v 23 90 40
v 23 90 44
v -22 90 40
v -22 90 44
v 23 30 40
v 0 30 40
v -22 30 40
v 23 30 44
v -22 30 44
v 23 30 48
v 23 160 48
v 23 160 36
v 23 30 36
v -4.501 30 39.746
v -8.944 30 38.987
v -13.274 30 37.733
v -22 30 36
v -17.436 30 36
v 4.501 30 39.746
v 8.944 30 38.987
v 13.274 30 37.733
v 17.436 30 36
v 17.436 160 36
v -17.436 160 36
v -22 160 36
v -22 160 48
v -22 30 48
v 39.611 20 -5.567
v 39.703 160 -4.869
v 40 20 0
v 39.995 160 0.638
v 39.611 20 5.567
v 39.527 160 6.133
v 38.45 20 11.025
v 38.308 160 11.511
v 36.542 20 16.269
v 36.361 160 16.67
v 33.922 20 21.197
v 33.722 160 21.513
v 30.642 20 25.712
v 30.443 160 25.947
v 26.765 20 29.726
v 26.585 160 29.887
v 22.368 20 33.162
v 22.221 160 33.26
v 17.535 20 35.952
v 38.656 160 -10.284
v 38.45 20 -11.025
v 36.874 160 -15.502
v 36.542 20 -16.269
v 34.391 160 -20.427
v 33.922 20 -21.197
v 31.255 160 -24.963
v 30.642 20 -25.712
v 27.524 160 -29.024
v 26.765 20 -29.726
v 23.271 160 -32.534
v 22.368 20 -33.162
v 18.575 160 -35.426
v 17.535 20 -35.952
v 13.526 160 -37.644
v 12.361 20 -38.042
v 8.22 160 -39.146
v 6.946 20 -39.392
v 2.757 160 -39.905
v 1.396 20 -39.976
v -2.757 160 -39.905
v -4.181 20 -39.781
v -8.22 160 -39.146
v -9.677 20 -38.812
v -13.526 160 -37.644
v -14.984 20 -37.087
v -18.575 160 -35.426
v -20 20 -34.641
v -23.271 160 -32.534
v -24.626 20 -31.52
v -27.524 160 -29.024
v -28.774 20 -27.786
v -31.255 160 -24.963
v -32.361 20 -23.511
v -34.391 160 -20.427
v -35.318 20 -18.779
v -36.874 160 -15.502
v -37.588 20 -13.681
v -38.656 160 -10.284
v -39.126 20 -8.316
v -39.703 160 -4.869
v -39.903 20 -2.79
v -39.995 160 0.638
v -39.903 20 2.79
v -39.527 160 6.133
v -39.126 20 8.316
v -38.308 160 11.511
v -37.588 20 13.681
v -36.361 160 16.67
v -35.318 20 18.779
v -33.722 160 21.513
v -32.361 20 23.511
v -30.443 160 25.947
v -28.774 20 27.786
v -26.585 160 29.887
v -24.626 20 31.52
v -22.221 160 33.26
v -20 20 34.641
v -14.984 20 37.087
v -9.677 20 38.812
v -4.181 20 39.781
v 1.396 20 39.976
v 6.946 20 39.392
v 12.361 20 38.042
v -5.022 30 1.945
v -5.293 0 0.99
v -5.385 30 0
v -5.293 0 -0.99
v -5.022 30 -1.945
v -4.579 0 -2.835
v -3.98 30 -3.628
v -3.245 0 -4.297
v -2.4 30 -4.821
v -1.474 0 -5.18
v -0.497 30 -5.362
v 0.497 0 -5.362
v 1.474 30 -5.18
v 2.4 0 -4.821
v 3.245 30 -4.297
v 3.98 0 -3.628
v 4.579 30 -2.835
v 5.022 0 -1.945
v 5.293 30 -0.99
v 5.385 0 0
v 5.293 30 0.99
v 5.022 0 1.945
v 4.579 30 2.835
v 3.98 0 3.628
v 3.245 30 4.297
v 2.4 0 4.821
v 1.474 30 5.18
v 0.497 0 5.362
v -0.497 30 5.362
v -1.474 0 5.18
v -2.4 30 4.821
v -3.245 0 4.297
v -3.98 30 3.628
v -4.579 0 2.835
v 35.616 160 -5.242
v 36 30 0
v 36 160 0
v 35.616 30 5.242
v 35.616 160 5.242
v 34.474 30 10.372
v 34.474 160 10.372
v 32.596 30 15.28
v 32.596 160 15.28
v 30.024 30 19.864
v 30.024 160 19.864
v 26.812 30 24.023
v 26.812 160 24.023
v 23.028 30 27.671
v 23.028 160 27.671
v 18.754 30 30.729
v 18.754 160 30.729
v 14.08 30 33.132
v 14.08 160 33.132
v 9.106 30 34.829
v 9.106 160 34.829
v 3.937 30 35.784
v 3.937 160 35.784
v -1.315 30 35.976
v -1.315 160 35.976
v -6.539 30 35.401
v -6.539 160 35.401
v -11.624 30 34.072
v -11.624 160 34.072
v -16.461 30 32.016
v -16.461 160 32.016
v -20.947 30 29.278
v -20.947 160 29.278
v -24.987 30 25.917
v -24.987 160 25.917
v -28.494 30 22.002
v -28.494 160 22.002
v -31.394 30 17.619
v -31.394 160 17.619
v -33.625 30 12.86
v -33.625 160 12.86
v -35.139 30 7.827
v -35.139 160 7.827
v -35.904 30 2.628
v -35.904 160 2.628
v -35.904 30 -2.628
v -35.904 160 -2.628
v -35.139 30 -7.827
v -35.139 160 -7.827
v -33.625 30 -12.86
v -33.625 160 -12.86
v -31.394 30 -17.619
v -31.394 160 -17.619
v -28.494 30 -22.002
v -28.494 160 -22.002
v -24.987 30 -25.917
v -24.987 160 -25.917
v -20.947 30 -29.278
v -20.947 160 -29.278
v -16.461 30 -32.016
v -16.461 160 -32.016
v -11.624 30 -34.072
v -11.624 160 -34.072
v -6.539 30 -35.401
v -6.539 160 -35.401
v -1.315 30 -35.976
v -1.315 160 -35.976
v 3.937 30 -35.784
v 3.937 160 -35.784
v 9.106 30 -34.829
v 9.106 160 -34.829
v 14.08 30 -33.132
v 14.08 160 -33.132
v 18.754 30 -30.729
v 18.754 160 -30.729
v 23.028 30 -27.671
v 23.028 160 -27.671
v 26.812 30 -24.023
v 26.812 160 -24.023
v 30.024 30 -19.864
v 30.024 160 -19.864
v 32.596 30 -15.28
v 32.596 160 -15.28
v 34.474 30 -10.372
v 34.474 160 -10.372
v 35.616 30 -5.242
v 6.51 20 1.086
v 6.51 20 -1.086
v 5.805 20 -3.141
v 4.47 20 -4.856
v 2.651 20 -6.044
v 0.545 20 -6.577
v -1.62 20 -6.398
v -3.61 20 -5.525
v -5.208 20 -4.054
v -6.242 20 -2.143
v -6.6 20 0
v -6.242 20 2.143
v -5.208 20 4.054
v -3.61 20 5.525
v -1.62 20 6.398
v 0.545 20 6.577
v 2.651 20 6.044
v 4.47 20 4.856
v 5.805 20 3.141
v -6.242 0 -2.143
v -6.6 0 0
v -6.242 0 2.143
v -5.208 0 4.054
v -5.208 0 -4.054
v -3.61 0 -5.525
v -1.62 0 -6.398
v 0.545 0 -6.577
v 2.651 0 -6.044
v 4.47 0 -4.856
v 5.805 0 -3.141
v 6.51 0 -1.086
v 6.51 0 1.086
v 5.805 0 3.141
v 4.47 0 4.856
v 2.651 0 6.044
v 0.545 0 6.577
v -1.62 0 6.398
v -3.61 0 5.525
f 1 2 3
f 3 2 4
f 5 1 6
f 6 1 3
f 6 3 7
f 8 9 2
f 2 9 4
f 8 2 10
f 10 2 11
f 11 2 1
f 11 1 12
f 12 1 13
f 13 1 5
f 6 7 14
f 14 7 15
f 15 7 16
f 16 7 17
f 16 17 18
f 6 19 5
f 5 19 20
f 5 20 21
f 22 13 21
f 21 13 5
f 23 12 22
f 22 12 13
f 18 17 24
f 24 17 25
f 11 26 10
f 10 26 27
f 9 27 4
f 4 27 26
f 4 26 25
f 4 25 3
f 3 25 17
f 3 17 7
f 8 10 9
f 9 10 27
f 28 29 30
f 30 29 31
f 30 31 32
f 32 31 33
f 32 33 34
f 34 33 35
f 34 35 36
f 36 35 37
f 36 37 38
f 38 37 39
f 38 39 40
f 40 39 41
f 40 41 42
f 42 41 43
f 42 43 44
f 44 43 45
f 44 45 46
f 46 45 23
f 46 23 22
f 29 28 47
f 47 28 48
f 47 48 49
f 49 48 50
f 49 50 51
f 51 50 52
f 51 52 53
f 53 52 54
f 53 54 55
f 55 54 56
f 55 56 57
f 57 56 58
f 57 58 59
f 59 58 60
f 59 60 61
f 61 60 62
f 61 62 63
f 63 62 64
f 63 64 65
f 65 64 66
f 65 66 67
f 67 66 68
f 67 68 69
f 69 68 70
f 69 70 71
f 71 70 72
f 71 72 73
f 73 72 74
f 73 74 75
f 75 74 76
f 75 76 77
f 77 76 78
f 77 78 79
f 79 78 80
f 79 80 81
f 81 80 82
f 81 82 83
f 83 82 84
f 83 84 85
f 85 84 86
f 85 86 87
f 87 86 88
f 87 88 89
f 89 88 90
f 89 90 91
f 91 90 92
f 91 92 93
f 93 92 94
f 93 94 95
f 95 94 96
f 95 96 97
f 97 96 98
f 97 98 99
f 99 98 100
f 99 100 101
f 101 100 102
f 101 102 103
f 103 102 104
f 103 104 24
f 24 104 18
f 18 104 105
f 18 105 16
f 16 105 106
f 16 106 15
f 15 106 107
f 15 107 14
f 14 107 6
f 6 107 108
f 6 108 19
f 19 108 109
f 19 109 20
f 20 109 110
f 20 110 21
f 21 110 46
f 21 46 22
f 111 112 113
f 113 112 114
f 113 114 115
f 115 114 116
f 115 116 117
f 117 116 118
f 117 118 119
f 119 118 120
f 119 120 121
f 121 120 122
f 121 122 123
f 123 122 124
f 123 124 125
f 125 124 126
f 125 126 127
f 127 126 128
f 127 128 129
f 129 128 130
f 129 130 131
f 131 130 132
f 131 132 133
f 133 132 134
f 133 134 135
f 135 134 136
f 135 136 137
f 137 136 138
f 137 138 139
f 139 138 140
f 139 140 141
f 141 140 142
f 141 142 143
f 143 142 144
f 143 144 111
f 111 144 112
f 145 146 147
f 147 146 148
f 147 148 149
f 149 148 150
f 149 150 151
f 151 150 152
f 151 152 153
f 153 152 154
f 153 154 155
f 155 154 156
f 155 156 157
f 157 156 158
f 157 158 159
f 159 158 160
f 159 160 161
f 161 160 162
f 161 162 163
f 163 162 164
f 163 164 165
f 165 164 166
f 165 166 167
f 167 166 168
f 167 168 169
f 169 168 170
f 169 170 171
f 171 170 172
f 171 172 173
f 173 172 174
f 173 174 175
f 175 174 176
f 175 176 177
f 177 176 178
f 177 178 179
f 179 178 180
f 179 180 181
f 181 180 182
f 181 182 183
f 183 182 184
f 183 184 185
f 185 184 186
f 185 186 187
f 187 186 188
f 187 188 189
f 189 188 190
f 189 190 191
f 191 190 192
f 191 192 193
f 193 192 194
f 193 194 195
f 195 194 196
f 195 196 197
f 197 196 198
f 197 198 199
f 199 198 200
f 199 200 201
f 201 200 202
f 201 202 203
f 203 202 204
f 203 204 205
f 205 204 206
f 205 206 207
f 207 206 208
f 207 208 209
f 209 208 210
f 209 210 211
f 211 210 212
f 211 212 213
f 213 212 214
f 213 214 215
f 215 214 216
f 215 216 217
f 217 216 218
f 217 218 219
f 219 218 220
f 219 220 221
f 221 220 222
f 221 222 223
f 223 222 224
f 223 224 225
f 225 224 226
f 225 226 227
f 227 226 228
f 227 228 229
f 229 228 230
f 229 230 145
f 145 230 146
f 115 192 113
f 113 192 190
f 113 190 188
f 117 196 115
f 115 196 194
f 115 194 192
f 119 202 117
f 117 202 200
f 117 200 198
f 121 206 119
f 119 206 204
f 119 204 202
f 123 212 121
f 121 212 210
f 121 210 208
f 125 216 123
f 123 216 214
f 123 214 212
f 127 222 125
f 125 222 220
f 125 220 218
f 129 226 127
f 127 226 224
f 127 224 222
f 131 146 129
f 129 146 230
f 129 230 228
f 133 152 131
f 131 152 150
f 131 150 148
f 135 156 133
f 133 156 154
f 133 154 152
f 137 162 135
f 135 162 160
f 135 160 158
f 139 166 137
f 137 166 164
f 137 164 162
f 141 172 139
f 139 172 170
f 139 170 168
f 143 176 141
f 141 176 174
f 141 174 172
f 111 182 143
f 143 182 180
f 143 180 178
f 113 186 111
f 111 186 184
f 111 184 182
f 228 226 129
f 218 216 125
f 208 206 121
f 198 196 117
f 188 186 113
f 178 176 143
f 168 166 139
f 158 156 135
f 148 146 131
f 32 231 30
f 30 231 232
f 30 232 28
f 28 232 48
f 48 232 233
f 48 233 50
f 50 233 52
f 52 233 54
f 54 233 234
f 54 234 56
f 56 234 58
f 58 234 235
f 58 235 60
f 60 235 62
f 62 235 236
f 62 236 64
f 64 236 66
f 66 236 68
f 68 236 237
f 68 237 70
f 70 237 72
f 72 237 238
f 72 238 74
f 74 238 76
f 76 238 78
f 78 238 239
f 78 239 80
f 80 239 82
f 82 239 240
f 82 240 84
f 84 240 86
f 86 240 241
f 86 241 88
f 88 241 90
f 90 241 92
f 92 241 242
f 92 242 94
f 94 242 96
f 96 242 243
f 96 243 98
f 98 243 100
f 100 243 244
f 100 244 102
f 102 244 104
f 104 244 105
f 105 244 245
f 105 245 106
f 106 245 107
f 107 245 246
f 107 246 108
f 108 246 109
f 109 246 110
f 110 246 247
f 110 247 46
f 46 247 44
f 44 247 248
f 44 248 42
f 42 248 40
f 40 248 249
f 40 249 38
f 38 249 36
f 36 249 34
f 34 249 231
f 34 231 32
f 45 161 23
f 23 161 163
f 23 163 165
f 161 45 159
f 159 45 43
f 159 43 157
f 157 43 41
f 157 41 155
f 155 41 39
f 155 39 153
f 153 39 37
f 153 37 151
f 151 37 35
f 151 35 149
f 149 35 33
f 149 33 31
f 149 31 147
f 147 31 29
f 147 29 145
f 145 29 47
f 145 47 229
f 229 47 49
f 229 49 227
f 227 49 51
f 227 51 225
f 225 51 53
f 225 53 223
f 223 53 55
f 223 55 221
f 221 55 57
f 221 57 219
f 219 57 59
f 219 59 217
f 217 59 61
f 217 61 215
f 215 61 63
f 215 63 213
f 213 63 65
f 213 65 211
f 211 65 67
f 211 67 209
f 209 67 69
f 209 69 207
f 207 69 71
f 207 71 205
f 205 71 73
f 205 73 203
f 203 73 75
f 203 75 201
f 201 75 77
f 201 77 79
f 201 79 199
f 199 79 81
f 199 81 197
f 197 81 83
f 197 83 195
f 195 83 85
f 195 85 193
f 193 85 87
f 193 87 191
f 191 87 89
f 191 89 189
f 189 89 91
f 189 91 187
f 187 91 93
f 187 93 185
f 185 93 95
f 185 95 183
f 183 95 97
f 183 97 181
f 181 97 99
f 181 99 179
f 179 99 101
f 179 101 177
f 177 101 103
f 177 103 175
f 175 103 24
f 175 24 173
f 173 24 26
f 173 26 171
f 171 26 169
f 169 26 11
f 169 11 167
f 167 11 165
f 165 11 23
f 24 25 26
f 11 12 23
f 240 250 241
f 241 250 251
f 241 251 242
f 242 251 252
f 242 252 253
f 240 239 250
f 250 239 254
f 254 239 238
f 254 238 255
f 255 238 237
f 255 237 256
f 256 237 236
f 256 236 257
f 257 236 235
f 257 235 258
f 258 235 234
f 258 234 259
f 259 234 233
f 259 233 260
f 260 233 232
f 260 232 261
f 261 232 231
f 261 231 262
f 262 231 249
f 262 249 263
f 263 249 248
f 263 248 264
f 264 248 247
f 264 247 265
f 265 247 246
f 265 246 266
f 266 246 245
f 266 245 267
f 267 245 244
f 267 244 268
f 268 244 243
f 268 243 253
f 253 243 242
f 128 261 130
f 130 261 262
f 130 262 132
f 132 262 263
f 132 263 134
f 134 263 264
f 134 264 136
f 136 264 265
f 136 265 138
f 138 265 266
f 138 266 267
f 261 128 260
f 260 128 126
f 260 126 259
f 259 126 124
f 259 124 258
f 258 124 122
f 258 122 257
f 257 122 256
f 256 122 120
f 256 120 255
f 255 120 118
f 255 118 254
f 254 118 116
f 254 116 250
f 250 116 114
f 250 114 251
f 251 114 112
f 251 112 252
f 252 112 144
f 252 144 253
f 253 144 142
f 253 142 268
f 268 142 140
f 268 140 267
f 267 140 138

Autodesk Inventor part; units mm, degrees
ref_plane "YZ Plane" through (0, 0, 0) normal (1, 0, 0) x (0, 1, 0)
ref_plane "XZ Plane" through (0, 0, 0) normal (0, 1, 0) x (-1, 0, 0)
ref_plane "XY Plane" through (0, 0, 0) normal (0, 0, 1) x (1, 0, 0)
sketch "Sketch1" plane through (0, 0, 0) normal (0, 1, 0) x (-1, 0, 0)
  circle A0 centre (0, 0) radius 6.6
  dimension "d0" = 13.2
extrude "Extrusion1" add sketch "Sketch1" along normal blind 20
sketch "Sketch3" plane through (0, 20, 0) normal (0, 1, 0) x (1, 0, 0)
  circle A0 centre (0, 0) radius 40
  dimension "d4" = 80
extrude "Extrusion2" add sketch "Sketch3" along normal blind 140
sketch "Sketch4" plane through (0, 160, 0) normal (0, 1, 0) x (1, 0, 0)
  circle A0 centre (0, 0) radius 36
  circle A1 centre (0, 0) radius 40 projected
  dimension "d7" = 72
extrude "Extrusion3" cut sketch "Sketch4" against normal blind 130 contours A0
sketch "Sketch5" plane through (0, 0, 0) normal (0, -1, 0) x (1, 0, 0)
  circle A0 centre (0, 0) radius 5.3852
  circle A1 centre (0, 0) radius 6.6 projected
extrude "Extrusion4" cut sketch "Sketch5" against normal blind 130 contours A0
sketch "Sketch6" plane through (0, 160, 0) normal (0, 1, 0) x (1, 0, 0)
  line L0 (23, -36) -> (-22, -36)
  line L1 (-22, -36) -> (-22, -48)
  line L2 (-22, -48) -> (23, -48)
  line L3 (23, -48) -> (23, -36)
  point P0 (0, 0)
extrude "Extrusion5" add sketch "Sketch6" against normal blind 130
sketch "Sketch7" plane through (0, 30, 0) normal (0, -1, 0) x (1, 0, 0)
  line L0 (-25, 44) -> (25, 44)
  line L1 (25, 44) -> (25, 40)
  line L2 (25, 40) -> (-25, 40)
  line L3 (-25, 40) -> (-25, 44)
  line L4 (23, 48) -> (-22, 48) projected
  point P0 (0, 0)
  dimension "d17" = 4
extrude "Extrusion6" cut sketch "Sketch7" against normal blind 60
